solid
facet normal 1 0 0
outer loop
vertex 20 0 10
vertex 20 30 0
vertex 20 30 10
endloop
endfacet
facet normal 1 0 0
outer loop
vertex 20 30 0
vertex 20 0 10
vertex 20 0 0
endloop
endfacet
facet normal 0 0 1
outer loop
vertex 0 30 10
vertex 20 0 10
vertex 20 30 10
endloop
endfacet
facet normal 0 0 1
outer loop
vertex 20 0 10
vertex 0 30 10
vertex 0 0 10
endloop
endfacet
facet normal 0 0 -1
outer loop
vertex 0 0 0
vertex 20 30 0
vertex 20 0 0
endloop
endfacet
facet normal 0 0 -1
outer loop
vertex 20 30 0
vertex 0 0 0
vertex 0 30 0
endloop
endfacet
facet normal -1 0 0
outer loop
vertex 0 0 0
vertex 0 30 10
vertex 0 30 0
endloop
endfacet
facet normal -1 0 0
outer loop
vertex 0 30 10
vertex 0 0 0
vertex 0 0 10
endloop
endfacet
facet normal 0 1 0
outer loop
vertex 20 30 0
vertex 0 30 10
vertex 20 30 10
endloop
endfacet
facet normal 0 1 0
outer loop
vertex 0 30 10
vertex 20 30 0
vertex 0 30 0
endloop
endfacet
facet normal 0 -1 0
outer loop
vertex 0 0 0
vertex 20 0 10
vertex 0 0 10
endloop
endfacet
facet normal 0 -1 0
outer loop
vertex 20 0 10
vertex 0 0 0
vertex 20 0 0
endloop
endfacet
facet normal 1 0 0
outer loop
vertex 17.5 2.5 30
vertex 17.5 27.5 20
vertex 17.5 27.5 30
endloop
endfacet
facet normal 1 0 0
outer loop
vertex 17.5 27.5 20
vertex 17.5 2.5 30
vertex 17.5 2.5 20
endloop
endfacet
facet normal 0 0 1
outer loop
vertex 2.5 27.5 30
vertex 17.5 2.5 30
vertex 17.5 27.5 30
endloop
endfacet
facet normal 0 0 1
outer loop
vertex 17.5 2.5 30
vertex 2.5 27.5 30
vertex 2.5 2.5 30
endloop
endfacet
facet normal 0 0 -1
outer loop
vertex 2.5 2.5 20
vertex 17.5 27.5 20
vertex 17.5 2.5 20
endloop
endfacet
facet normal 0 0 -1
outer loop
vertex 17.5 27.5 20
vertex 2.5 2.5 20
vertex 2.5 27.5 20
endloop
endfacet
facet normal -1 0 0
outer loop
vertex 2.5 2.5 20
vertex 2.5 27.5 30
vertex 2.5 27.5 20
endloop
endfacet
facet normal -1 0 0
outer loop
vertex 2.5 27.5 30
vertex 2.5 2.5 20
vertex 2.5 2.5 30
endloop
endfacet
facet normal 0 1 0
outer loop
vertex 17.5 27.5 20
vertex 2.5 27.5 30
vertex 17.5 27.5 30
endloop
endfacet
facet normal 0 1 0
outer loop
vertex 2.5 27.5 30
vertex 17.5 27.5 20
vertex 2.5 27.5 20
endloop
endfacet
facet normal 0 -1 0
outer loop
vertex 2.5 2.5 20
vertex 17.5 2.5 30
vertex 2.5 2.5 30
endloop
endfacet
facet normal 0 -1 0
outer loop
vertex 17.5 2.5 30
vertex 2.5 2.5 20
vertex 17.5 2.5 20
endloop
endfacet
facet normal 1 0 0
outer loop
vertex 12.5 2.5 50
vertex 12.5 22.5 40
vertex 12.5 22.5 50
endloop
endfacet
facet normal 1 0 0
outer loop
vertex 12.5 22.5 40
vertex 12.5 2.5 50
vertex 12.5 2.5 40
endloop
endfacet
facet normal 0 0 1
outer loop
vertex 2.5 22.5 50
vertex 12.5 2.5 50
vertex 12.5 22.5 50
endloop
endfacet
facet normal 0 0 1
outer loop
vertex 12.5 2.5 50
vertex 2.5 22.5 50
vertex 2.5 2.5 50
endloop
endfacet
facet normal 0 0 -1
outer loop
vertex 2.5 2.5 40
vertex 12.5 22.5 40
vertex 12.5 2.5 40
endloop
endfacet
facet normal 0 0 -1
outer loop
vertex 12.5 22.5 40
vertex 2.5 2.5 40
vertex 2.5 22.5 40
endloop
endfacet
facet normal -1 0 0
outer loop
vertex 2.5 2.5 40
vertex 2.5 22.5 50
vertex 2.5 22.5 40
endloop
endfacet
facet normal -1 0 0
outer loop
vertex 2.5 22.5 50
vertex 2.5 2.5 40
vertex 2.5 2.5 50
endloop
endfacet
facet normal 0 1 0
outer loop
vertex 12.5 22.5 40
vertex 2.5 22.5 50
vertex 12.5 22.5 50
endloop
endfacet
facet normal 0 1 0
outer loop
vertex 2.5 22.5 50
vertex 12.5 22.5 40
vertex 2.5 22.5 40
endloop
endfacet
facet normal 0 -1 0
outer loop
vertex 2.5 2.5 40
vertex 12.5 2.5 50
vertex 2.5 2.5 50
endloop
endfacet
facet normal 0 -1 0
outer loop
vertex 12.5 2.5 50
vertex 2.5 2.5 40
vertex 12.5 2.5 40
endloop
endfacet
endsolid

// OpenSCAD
// Define dimensions for each block
large_block_size = [20, 30, 10];  // Length, width, height for the large rectangular block
medium_block_size = [15, 25, 10]; // Length, width, height for the medium rectangular block
small_block_size = [10, 20, 10];  // Length, width, height for the small rectangular block

// Layer positions
layer_spacing = 10;
layer_3_position = [0, 0, 0]; // Positioned at base (layer 3)
layer_2_position = [(large_block_size[0] - medium_block_size[0]) / 2, (large_block_size[1] - medium_block_size[1]) / 2, large_block_size[2] + layer_spacing]; // Centered above large block (layer 2)
layer_1_position = [(medium_block_size[0] - small_block_size[0]) / 2, (medium_block_size[1] - small_block_size[1]) / 2, large_block_size[2] + medium_block_size[2] + 2 * layer_spacing]; // Centered above medium block (layer 1)

// Large rectangular block
translate(layer_3_position)
    cube(large_block_size);

// Medium rectangular block
translate(layer_2_position)
    cube(medium_block_size);

// Small rectangular block
translate(layer_1_position)
    cube(small_block_size);
